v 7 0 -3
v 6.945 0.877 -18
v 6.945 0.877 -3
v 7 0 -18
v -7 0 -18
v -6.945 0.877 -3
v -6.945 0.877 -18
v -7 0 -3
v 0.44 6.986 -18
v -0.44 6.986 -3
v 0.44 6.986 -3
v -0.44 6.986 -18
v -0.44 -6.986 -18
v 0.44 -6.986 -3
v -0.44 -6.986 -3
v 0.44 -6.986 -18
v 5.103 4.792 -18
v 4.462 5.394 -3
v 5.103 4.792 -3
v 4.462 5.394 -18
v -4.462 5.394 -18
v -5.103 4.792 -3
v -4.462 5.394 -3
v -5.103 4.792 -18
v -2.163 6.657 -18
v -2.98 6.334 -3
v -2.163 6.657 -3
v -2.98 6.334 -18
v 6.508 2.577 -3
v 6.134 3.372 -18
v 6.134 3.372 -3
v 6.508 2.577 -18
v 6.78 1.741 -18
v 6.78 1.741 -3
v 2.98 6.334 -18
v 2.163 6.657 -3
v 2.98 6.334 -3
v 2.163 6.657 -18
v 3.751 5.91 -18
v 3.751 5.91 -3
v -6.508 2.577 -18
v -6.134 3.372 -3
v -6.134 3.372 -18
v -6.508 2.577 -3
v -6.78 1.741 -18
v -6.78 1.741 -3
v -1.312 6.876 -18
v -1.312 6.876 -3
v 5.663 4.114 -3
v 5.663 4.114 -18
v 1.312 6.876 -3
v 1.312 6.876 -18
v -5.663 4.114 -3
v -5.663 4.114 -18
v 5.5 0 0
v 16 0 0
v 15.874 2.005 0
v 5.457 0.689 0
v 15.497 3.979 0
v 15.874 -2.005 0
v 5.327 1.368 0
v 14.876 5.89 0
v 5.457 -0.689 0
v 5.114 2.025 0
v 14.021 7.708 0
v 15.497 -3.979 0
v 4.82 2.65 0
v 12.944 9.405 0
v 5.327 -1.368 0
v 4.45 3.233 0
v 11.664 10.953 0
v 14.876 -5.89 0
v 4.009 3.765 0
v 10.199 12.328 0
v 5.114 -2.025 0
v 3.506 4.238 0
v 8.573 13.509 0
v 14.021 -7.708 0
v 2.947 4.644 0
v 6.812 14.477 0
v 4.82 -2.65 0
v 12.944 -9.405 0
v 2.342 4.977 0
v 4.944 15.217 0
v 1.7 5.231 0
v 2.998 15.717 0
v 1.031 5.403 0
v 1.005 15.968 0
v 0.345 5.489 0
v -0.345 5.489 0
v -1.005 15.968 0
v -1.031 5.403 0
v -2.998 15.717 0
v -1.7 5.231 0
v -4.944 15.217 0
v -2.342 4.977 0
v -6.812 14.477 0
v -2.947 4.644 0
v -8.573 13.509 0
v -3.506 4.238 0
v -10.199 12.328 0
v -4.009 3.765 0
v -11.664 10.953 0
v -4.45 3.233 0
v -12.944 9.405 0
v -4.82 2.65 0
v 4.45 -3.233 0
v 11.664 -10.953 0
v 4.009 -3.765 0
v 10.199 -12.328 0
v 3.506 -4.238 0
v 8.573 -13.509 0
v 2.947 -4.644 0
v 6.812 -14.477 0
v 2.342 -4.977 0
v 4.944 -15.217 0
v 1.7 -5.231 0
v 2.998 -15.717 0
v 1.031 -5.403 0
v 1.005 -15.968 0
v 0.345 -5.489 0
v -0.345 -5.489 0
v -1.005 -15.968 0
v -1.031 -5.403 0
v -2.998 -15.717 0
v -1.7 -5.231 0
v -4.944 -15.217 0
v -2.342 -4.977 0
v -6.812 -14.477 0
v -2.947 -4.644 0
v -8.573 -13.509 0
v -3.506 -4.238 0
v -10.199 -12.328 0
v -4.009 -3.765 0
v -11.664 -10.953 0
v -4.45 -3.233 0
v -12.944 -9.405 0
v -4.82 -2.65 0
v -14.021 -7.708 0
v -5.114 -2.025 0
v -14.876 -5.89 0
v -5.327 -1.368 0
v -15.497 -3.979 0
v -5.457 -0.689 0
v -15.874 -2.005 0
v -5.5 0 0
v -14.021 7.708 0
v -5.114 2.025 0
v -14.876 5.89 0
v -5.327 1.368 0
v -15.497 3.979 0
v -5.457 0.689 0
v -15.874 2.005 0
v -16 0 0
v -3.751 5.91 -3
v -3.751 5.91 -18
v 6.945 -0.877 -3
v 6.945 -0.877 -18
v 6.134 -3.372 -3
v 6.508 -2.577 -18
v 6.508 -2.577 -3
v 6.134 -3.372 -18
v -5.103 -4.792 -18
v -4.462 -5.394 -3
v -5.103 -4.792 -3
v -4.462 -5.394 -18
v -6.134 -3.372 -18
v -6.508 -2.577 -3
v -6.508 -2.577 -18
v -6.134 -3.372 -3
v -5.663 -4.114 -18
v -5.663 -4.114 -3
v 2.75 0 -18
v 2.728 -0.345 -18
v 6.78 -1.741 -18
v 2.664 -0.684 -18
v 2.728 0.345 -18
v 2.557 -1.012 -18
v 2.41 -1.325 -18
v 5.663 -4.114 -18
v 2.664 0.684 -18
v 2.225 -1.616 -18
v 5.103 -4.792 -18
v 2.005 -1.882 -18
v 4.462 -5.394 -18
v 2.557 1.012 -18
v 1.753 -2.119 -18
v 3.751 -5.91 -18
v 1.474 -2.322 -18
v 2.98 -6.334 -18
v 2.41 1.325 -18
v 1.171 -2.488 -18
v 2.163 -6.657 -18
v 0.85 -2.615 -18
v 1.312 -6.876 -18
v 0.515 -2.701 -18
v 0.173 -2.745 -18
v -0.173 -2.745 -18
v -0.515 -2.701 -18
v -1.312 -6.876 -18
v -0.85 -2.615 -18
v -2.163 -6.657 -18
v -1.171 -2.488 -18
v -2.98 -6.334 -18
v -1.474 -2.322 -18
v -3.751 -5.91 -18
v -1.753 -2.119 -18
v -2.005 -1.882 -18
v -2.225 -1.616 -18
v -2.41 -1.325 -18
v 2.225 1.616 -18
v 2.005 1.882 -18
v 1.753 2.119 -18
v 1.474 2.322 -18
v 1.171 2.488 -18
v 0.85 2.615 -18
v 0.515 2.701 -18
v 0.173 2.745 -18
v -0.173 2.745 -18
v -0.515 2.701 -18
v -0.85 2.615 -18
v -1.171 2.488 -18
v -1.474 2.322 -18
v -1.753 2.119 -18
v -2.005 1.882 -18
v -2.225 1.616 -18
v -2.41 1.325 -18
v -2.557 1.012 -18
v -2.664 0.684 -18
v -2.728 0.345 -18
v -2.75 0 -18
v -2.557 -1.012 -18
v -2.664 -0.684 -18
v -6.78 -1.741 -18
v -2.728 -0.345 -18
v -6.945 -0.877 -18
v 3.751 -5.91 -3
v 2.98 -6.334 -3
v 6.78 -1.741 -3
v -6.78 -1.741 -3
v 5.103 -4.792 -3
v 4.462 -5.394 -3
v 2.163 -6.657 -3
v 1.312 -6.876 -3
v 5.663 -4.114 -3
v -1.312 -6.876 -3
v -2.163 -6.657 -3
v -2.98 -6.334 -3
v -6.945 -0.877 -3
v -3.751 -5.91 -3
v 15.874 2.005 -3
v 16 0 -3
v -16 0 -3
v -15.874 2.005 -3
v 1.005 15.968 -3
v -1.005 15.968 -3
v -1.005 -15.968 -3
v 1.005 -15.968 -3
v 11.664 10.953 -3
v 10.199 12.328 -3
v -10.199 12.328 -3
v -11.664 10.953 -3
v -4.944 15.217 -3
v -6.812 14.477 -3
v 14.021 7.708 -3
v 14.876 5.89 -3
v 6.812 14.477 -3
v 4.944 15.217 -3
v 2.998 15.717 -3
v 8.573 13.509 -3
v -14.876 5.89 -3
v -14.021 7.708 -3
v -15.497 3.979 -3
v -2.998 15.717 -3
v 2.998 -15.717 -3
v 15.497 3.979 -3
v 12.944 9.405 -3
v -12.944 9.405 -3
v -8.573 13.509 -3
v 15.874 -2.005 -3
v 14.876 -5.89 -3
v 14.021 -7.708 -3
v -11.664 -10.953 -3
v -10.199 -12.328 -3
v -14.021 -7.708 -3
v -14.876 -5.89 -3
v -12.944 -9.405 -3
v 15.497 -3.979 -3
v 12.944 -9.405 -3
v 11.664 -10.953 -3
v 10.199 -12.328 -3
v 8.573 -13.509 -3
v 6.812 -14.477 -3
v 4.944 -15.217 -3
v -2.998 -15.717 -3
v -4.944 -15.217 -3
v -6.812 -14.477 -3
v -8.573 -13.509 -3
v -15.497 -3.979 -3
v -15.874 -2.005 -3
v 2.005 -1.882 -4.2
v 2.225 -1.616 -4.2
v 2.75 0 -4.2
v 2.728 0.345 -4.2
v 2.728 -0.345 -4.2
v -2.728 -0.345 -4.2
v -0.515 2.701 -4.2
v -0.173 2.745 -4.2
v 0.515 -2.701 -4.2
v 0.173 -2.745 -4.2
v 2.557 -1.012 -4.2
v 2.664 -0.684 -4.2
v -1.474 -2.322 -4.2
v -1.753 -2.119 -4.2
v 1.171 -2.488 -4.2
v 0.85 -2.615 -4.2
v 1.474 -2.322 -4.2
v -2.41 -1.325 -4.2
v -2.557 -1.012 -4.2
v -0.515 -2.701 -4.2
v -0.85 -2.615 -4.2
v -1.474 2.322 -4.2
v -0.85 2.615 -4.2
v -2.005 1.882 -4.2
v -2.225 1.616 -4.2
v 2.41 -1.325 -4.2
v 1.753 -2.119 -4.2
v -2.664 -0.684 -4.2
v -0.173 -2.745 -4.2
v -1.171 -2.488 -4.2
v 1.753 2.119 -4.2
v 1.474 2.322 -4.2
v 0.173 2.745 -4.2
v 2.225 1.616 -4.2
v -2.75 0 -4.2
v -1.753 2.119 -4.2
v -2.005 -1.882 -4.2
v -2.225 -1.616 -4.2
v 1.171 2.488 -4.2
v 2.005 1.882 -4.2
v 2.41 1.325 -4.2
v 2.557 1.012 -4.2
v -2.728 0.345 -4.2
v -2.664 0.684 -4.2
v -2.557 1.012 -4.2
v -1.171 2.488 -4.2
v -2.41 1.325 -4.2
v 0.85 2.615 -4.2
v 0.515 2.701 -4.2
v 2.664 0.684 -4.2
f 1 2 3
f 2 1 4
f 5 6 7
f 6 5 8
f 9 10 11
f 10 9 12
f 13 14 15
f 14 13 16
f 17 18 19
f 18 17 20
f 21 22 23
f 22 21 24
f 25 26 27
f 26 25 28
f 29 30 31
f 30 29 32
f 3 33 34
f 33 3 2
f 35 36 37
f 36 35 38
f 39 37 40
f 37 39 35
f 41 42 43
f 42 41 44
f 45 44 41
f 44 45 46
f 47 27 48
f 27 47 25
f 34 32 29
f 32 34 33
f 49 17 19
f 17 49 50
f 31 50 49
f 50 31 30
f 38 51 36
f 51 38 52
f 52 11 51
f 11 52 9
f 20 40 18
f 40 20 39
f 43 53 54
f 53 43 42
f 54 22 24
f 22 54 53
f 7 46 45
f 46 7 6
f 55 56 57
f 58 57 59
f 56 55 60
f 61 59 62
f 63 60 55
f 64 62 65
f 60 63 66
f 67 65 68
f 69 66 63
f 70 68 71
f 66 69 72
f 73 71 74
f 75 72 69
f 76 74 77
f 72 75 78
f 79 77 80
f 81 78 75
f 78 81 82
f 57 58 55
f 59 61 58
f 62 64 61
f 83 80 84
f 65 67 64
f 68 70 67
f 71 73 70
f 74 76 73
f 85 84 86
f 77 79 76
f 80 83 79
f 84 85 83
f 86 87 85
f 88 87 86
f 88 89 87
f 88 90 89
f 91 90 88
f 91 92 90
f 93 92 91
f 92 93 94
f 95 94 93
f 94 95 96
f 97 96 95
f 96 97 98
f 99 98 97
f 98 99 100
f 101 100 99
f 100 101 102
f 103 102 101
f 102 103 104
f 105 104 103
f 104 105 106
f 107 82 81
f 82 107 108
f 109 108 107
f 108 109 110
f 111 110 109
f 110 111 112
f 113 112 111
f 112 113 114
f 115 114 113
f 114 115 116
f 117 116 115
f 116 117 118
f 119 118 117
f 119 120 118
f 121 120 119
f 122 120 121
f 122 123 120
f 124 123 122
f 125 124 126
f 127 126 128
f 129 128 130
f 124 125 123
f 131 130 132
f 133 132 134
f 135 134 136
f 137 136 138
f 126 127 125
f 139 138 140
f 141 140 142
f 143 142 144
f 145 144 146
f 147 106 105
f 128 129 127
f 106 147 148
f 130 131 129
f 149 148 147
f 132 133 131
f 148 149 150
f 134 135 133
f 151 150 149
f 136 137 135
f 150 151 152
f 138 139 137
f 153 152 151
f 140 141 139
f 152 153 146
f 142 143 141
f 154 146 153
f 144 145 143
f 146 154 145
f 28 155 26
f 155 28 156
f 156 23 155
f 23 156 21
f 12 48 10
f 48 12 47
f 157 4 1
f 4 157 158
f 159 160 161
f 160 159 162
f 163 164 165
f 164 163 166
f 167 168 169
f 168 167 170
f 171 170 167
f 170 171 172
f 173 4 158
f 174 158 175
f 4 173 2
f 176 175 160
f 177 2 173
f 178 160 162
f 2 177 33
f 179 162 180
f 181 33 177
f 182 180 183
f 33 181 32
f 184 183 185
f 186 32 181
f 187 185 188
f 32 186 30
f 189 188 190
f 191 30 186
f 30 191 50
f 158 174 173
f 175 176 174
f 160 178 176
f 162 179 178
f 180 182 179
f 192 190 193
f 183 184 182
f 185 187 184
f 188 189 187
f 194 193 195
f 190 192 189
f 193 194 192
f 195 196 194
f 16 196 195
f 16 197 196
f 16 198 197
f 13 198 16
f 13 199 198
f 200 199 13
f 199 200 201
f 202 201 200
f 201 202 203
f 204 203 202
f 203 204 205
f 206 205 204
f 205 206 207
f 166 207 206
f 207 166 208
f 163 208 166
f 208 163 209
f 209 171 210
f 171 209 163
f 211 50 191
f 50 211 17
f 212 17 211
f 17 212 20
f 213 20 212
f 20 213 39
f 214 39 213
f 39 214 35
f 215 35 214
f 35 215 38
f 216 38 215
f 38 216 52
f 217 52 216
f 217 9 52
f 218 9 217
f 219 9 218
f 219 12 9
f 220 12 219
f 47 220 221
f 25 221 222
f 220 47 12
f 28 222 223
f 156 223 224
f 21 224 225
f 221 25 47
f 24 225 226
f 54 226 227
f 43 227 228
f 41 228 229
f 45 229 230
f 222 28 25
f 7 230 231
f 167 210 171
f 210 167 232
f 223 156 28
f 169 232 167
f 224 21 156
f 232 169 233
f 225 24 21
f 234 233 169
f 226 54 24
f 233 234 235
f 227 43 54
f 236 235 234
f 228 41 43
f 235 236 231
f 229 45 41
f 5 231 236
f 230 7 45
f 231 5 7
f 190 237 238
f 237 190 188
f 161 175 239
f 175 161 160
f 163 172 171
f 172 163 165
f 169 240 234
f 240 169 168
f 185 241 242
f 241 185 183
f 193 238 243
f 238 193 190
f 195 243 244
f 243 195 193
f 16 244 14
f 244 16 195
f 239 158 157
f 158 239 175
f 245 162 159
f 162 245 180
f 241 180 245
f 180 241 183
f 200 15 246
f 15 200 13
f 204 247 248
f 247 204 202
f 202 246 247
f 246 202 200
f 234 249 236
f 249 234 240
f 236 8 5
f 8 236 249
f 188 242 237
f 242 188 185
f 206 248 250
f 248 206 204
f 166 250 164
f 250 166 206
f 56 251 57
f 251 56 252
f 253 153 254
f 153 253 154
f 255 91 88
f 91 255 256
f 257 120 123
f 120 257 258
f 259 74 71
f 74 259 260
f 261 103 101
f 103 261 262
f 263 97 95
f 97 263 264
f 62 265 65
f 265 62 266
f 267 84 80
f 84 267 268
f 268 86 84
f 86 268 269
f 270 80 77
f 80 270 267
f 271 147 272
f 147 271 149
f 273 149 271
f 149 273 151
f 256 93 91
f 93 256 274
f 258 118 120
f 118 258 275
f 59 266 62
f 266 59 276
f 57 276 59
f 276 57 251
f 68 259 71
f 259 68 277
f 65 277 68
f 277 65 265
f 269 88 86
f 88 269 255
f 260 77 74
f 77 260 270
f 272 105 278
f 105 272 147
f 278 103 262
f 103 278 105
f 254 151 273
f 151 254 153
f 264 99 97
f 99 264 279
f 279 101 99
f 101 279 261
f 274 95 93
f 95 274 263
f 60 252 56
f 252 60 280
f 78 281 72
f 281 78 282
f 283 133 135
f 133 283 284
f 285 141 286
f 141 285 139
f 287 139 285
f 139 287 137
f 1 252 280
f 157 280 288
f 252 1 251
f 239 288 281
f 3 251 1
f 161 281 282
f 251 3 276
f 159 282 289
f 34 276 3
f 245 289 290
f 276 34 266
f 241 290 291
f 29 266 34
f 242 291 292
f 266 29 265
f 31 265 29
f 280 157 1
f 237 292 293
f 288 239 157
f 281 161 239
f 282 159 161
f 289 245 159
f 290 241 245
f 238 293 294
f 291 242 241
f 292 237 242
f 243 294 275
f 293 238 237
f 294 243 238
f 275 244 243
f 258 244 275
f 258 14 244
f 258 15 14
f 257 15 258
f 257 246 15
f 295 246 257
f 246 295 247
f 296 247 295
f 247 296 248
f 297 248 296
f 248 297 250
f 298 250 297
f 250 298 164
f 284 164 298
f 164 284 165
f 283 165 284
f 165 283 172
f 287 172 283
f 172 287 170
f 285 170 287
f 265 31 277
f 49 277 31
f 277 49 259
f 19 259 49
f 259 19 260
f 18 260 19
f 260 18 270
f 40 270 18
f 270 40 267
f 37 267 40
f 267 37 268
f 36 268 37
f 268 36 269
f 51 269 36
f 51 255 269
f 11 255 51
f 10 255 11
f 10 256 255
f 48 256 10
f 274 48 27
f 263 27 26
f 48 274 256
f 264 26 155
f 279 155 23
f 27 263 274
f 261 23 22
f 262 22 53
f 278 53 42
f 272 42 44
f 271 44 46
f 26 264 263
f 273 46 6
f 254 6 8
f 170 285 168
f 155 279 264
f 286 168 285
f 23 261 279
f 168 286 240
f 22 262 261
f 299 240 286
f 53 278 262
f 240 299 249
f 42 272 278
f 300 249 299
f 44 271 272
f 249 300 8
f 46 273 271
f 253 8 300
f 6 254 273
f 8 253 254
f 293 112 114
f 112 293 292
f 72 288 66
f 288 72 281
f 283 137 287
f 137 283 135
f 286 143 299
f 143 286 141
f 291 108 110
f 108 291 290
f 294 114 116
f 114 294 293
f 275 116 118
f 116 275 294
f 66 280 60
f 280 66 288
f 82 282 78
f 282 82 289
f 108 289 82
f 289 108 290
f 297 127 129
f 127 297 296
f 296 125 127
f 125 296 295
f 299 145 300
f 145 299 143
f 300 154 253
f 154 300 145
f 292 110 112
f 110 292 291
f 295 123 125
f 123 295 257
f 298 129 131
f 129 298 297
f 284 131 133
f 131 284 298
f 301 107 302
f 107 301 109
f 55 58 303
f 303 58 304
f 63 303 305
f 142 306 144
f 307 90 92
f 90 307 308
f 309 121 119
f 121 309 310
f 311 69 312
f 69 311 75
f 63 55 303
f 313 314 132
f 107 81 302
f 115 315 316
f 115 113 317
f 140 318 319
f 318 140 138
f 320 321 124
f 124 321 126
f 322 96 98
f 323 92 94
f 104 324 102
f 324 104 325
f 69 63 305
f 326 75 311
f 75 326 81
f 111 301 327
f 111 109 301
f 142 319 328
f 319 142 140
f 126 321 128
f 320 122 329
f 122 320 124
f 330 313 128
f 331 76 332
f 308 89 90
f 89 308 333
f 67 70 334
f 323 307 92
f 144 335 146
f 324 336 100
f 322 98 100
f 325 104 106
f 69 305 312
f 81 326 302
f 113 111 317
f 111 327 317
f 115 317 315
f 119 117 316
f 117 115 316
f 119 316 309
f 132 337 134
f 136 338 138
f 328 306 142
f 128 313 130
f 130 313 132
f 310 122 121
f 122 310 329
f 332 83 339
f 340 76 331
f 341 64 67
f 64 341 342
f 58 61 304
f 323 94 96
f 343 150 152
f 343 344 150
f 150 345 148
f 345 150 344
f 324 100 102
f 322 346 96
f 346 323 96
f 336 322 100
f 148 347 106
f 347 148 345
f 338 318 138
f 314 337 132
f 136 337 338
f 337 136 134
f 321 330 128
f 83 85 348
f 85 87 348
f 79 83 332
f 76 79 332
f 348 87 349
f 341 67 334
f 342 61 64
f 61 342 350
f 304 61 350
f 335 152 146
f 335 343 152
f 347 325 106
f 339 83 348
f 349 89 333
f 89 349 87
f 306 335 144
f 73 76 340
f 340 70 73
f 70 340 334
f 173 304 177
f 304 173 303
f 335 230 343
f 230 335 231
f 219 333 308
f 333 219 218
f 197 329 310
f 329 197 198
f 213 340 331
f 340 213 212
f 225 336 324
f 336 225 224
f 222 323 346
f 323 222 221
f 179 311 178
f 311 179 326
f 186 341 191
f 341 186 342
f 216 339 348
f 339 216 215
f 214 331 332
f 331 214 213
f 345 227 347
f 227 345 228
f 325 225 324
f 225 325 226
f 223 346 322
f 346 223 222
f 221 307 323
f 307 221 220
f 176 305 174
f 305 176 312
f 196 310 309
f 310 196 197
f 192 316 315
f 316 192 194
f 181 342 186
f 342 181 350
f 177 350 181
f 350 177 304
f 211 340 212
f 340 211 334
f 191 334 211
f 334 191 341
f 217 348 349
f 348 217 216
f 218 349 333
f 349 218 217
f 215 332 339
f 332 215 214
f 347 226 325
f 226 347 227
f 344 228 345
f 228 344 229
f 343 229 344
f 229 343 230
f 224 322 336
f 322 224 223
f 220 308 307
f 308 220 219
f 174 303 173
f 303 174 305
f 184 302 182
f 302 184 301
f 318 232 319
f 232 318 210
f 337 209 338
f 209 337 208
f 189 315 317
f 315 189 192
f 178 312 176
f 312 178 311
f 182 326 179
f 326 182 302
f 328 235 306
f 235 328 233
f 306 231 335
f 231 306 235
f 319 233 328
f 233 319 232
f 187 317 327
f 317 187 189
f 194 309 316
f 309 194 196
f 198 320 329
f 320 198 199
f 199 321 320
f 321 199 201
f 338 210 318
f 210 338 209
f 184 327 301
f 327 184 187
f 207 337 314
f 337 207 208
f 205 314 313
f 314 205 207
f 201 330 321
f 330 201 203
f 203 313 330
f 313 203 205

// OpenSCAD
$fn = 50;


difference() {
	union() {
		translate(v = [0, 0, -18.0000000000]) {
			cylinder(h = 18, r = 7.0000000000);
		}
		translate(v = [0, 0, -3.0000000000]) {
			cylinder(h = 3, r = 16.0000000000);
		}
	}
	union() {
		translate(v = [0, 0, 0]) {
			rotate(a = [0, 0, 0]) {
				difference() {
					union() {
						#translate(v = [0, 0, -18.0000000000]) {
							cylinder(h = 18, r = 2.2500000000);
						}
						#translate(v = [0, 0, -4.2000000000]) {
							cylinder(h = 4.2000000000, r1 = 2.7500000000, r2 = 5.5000000000);
						}
						#translate(v = [0, 0, -18.0000000000]) {
							cylinder(h = 18, r = 2.7500000000);
						}
						#translate(v = [0, 0, -18.0000000000]) {
							cylinder(h = 18, r = 2.2500000000);
						}
					}
					union();
				}
			}
		}
	}
}
